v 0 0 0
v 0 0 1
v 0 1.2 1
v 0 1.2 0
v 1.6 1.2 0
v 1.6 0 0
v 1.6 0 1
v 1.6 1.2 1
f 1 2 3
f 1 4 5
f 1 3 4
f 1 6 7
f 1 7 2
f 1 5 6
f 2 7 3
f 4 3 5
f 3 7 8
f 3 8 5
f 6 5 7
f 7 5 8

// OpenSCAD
/* Warning, this is a very basic generator with a lot of approximation 
input data : [VFLGA, AVA, 1.6x1.2mm, 6, , A, C04-01203A]
generated by com.zoubworld.electronics.cad.model3d.Basic
Date : Sun Feb 15 10:50:49 CET 2026
*/

//body
color("black")
translate([0,0,0])
cube([1.6,1.2,1.0], center=false);
